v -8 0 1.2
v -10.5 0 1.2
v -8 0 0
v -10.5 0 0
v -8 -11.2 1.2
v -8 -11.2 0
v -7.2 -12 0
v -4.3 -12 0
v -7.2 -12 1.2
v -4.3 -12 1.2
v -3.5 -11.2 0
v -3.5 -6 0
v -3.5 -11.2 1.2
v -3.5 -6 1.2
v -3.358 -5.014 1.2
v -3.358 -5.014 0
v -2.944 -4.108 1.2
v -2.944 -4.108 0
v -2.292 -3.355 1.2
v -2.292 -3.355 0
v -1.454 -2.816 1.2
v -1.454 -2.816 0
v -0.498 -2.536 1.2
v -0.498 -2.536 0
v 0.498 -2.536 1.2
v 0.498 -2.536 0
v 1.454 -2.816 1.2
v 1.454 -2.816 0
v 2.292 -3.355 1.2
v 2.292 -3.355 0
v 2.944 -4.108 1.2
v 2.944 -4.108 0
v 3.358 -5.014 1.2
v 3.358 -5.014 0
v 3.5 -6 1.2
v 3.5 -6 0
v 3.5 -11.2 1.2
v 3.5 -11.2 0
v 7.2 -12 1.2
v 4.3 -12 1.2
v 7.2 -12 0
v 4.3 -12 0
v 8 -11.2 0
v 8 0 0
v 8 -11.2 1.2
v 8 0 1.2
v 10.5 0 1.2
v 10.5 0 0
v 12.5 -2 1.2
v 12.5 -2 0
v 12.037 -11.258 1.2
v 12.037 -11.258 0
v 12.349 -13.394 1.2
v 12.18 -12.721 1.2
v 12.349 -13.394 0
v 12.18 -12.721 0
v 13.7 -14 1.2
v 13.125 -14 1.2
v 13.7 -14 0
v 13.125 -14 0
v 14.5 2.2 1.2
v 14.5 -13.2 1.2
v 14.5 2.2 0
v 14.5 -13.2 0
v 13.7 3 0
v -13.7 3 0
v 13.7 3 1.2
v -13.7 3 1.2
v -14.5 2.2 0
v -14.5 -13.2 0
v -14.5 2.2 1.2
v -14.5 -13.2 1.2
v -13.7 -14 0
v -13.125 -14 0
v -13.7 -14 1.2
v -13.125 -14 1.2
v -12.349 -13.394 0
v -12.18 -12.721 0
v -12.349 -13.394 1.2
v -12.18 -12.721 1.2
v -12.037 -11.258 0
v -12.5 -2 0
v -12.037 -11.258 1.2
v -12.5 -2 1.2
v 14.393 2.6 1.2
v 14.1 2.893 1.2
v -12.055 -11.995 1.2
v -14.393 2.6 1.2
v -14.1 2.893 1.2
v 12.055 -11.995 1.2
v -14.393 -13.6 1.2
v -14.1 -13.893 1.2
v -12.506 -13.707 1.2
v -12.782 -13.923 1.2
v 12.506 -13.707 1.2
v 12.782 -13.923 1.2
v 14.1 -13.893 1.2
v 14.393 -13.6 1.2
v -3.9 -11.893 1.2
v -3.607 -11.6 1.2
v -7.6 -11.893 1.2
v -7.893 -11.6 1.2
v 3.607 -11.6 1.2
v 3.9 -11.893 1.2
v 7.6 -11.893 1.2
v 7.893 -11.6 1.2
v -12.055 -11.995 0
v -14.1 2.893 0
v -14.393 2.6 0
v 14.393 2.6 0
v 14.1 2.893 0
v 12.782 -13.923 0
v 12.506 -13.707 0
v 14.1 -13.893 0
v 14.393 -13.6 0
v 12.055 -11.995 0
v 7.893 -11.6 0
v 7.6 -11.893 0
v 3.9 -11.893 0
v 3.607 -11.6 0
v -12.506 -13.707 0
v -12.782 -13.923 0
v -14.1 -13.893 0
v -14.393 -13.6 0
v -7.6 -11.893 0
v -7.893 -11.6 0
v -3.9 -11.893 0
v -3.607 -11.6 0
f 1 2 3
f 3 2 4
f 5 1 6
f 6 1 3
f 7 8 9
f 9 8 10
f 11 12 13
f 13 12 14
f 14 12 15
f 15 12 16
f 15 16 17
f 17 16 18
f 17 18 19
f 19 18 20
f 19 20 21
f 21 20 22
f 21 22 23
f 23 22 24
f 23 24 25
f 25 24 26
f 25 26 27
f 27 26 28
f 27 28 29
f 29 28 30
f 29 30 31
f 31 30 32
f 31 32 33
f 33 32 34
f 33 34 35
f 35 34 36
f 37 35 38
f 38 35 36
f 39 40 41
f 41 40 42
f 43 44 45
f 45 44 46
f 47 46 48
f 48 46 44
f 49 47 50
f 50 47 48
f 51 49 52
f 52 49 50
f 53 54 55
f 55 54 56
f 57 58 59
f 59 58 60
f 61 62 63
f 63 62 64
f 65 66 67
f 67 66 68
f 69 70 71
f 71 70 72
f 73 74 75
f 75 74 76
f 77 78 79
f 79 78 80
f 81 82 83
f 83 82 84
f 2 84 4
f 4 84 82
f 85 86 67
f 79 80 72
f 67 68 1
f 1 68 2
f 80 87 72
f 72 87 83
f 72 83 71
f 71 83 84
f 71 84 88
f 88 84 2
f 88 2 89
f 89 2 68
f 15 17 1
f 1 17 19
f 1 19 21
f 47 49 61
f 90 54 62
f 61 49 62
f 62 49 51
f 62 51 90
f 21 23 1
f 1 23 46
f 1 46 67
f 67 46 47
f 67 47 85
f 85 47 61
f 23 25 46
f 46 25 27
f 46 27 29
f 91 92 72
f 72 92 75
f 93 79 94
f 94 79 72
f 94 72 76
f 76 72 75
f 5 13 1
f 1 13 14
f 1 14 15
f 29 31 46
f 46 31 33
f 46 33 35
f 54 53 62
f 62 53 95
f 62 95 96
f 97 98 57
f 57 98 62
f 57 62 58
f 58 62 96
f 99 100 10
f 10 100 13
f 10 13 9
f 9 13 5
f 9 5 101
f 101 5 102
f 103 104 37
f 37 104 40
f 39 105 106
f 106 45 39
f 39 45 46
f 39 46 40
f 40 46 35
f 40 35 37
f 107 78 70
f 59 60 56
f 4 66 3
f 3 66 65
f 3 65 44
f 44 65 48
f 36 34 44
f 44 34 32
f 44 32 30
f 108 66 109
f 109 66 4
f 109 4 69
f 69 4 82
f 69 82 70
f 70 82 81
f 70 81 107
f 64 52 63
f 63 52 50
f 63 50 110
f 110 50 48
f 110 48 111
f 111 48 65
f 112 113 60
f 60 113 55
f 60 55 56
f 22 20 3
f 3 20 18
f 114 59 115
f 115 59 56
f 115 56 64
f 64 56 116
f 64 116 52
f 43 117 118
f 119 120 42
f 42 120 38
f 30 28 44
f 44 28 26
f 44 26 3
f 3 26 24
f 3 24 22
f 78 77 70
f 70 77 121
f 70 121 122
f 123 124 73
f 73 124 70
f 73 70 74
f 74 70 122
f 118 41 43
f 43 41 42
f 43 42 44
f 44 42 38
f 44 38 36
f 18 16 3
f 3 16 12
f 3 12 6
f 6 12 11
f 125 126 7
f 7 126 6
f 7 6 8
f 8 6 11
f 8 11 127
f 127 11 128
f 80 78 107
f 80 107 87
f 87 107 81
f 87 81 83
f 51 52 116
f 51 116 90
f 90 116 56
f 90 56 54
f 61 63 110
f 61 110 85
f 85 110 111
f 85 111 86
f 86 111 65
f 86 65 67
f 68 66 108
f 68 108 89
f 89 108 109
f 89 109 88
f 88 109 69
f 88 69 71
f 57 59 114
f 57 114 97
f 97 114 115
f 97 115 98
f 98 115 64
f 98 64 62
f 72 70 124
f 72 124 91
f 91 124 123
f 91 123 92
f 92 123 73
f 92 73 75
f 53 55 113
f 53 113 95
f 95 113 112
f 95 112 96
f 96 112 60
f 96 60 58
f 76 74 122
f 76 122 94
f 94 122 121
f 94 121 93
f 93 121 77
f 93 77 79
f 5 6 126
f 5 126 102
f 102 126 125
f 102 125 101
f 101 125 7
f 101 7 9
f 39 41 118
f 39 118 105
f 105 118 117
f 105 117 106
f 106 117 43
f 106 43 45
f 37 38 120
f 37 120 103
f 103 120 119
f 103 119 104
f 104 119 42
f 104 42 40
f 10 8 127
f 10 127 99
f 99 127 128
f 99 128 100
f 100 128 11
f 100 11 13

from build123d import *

# Parameters (mm, degrees)
BOSS_EXTRUDE1_DEPTH = 1.2
FILLET1_R           = 5
FILLET2_R           = 0.8


with BuildPart() as part:
    # Sketch1 → Boss-Extrude1 (new body)
    with BuildSketch(Plane.XY):
        with BuildLine():
            Line((-10.5, 0), (-12.5, -2))
            Line((-12.5, -2), (-12, -12))
            Line((-12, -12), (-12.5, -14))
            Line((-12.5, -14), (-14.5, -14))
            Line((-14.5, -14), (-14.5, 3))
            Line((-14.5, 3), (-12.5, 3))
            Line((-12.5, 3), (12.5, 3))
            Line((12.5, 3), (14.5, 3))
            Line((14.5, 3), (14.5, -14))
            Line((14.5, -14), (12.5, -14))
            Line((12.5, -14), (12, -12))
            Line((12, -12), (12.5, -2))
            Line((12.5, -2), (10.5, 0))
            Line((10.5, 0), (8, 0))
            Line((8, 0), (8, -12))
            Line((8, -12), (3.5, -12))
            Line((3.5, -12), (3.5, -6))
            ThreePointArc((3.5, -6), (0, -2.5), (-3.5, -6))
            Line((-3.5, -6), (-3.5, -12))
            Line((-3.5, -12), (-8, -12))
            Line((-8, -12), (-8, 0))
            Line((-8, 0), (-10.5, 0))
        make_face()
    extrude(amount=BOSS_EXTRUDE1_DEPTH)

    # Fillet1
    fillet1_edges = [part.edges().sort_by_distance(p)[0] for p in [
        (-12, -12, 0.6),
        (12, -12, 0.6),
    ]]
    fillet(fillet1_edges, radius=FILLET1_R)

    # Fillet2
    fillet2_edges = [part.edges().sort_by_distance(p)[0] for p in [
        (-12.5, -14, 0.6),
        (-14.5, -14, 0.6),
        (-14.5, 3, 0.6),
        (14.5, 3, 0.6),
        (14.5, -14, 0.6),
        (12.5, -14, 0.6),
        (8, -12, 0.6),
        (3.5, -12, 0.6),
        (-3.5, -12, 0.6),
        (-8, -12, 0.6),
    ]]
    fillet(fillet2_edges, radius=FILLET2_R)


solid = part.part
